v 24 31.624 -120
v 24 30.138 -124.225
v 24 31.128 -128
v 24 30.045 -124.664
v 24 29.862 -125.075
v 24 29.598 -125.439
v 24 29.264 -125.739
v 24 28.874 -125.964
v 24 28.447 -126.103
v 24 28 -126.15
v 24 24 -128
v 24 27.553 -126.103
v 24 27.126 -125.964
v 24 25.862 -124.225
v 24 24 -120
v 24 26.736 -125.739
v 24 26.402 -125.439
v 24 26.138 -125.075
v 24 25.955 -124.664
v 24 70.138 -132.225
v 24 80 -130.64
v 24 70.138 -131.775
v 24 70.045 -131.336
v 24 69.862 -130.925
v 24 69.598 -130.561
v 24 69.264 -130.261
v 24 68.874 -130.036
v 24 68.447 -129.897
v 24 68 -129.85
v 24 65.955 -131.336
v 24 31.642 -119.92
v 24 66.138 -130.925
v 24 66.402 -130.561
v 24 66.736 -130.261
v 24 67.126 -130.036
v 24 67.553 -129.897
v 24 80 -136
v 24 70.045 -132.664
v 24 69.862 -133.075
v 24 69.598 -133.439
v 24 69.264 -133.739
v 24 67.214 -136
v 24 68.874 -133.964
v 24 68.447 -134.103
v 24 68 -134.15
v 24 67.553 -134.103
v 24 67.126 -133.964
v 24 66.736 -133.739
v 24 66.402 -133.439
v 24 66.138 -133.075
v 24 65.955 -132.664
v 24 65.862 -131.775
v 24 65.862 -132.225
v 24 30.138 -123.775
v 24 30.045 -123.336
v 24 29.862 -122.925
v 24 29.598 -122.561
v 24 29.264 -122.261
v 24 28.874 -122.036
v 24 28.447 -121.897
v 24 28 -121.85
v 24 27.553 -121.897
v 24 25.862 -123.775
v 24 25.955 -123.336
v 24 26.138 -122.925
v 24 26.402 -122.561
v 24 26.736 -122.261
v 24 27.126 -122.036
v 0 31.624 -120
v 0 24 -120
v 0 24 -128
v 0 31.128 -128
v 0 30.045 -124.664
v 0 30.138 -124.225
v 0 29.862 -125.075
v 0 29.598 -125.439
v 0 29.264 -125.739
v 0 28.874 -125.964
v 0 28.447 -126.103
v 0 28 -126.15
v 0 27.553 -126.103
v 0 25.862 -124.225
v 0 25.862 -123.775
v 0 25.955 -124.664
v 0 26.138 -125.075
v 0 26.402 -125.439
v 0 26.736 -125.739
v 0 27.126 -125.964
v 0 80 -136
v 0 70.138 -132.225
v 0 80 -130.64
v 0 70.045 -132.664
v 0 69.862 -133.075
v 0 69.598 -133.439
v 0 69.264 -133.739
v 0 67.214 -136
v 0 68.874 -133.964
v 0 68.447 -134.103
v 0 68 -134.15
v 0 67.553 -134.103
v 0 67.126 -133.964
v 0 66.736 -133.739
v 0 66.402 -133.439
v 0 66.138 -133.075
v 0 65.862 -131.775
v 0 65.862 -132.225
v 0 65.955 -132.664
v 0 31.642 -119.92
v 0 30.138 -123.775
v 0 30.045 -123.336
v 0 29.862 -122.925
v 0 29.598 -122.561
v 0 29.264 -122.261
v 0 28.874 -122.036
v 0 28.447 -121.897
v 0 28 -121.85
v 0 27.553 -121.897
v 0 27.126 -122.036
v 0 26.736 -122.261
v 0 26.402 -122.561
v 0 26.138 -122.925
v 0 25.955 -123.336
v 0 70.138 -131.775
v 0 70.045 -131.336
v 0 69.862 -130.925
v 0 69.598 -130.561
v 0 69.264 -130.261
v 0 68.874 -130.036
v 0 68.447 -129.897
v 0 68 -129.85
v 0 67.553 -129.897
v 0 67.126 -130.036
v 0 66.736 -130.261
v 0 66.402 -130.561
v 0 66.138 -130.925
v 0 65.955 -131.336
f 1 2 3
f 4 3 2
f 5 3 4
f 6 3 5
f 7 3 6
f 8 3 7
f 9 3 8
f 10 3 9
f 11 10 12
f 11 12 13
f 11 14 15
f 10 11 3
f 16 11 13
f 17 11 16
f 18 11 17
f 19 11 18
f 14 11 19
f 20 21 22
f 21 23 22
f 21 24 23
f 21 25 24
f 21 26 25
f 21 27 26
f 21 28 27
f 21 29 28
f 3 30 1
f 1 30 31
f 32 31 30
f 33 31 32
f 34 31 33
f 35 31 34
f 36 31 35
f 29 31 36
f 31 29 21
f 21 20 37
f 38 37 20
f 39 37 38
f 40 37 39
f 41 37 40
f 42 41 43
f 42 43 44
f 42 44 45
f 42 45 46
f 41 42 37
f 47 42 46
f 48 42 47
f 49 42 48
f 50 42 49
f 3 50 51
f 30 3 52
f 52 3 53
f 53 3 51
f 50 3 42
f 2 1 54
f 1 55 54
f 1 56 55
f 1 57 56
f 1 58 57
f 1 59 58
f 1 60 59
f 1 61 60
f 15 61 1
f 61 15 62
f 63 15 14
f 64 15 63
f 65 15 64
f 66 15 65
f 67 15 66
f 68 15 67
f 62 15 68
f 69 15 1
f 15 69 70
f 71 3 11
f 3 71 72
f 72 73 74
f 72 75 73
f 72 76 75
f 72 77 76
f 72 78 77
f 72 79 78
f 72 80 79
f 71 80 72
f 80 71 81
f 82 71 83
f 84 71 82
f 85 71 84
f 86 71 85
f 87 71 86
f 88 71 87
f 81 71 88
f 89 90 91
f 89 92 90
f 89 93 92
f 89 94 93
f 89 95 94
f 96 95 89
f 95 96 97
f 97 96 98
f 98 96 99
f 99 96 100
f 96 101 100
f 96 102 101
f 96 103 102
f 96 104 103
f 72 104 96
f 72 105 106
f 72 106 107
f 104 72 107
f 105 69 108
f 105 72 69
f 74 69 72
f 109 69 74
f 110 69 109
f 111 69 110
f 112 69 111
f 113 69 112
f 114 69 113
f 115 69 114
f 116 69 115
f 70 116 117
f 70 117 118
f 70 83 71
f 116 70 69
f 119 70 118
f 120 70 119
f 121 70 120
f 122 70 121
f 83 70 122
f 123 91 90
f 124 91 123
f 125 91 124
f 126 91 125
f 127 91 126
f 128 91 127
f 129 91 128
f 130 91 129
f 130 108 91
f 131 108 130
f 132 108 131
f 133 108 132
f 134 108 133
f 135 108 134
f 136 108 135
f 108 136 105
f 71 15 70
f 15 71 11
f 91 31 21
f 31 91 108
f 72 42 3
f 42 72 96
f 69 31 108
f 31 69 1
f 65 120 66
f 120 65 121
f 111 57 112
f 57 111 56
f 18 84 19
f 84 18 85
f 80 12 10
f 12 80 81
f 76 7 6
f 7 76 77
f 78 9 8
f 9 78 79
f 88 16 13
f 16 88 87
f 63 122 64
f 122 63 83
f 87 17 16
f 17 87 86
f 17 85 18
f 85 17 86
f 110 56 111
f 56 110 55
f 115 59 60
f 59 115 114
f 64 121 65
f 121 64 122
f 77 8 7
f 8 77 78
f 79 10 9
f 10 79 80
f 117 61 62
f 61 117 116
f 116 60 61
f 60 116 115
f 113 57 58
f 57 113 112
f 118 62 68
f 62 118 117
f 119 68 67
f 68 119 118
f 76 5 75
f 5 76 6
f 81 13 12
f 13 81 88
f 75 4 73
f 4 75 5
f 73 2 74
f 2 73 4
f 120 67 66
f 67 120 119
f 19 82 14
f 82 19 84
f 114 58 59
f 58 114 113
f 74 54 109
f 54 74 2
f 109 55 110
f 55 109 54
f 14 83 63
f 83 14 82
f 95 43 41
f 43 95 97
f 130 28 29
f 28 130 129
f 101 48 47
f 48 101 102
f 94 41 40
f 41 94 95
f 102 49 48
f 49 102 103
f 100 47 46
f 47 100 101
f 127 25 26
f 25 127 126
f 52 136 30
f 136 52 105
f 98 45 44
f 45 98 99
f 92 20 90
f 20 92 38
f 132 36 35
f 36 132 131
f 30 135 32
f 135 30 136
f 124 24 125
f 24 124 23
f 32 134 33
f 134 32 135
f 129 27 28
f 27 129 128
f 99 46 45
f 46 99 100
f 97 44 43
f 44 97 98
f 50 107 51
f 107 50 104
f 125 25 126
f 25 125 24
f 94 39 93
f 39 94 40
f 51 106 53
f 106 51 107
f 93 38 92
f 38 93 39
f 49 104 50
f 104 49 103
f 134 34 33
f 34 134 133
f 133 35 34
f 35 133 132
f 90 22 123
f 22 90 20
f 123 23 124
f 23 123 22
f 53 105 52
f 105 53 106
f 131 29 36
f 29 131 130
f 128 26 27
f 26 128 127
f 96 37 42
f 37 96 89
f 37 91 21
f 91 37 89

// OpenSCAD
// left bottom exit piece
// color ("gray")
difference() {
union() {
    // flat part
    translate([0,24,-128])
    cube([24,8,8]);
    
    // angled exit
    translate([0,29.91,-127.73])
    rotate([347.5,0,0])
    cube([24,51,8]);
}
    // bottom left hole
    translate([-4,28,-124])
    rotate([0,90,0])
    cylinder(r=2.15,60, $fn=30);

    // bottom right hole
    translate([-4,68,-132])
    rotate([0,90,0])
    cylinder(r=2.15,60, $fn=30);

    // bottom clean up
    translate([0,50,-146])
    cube([40,60,10]);

    // right clean up
    translate([-1,80,-140])
    cube([40,20,20]);
}
